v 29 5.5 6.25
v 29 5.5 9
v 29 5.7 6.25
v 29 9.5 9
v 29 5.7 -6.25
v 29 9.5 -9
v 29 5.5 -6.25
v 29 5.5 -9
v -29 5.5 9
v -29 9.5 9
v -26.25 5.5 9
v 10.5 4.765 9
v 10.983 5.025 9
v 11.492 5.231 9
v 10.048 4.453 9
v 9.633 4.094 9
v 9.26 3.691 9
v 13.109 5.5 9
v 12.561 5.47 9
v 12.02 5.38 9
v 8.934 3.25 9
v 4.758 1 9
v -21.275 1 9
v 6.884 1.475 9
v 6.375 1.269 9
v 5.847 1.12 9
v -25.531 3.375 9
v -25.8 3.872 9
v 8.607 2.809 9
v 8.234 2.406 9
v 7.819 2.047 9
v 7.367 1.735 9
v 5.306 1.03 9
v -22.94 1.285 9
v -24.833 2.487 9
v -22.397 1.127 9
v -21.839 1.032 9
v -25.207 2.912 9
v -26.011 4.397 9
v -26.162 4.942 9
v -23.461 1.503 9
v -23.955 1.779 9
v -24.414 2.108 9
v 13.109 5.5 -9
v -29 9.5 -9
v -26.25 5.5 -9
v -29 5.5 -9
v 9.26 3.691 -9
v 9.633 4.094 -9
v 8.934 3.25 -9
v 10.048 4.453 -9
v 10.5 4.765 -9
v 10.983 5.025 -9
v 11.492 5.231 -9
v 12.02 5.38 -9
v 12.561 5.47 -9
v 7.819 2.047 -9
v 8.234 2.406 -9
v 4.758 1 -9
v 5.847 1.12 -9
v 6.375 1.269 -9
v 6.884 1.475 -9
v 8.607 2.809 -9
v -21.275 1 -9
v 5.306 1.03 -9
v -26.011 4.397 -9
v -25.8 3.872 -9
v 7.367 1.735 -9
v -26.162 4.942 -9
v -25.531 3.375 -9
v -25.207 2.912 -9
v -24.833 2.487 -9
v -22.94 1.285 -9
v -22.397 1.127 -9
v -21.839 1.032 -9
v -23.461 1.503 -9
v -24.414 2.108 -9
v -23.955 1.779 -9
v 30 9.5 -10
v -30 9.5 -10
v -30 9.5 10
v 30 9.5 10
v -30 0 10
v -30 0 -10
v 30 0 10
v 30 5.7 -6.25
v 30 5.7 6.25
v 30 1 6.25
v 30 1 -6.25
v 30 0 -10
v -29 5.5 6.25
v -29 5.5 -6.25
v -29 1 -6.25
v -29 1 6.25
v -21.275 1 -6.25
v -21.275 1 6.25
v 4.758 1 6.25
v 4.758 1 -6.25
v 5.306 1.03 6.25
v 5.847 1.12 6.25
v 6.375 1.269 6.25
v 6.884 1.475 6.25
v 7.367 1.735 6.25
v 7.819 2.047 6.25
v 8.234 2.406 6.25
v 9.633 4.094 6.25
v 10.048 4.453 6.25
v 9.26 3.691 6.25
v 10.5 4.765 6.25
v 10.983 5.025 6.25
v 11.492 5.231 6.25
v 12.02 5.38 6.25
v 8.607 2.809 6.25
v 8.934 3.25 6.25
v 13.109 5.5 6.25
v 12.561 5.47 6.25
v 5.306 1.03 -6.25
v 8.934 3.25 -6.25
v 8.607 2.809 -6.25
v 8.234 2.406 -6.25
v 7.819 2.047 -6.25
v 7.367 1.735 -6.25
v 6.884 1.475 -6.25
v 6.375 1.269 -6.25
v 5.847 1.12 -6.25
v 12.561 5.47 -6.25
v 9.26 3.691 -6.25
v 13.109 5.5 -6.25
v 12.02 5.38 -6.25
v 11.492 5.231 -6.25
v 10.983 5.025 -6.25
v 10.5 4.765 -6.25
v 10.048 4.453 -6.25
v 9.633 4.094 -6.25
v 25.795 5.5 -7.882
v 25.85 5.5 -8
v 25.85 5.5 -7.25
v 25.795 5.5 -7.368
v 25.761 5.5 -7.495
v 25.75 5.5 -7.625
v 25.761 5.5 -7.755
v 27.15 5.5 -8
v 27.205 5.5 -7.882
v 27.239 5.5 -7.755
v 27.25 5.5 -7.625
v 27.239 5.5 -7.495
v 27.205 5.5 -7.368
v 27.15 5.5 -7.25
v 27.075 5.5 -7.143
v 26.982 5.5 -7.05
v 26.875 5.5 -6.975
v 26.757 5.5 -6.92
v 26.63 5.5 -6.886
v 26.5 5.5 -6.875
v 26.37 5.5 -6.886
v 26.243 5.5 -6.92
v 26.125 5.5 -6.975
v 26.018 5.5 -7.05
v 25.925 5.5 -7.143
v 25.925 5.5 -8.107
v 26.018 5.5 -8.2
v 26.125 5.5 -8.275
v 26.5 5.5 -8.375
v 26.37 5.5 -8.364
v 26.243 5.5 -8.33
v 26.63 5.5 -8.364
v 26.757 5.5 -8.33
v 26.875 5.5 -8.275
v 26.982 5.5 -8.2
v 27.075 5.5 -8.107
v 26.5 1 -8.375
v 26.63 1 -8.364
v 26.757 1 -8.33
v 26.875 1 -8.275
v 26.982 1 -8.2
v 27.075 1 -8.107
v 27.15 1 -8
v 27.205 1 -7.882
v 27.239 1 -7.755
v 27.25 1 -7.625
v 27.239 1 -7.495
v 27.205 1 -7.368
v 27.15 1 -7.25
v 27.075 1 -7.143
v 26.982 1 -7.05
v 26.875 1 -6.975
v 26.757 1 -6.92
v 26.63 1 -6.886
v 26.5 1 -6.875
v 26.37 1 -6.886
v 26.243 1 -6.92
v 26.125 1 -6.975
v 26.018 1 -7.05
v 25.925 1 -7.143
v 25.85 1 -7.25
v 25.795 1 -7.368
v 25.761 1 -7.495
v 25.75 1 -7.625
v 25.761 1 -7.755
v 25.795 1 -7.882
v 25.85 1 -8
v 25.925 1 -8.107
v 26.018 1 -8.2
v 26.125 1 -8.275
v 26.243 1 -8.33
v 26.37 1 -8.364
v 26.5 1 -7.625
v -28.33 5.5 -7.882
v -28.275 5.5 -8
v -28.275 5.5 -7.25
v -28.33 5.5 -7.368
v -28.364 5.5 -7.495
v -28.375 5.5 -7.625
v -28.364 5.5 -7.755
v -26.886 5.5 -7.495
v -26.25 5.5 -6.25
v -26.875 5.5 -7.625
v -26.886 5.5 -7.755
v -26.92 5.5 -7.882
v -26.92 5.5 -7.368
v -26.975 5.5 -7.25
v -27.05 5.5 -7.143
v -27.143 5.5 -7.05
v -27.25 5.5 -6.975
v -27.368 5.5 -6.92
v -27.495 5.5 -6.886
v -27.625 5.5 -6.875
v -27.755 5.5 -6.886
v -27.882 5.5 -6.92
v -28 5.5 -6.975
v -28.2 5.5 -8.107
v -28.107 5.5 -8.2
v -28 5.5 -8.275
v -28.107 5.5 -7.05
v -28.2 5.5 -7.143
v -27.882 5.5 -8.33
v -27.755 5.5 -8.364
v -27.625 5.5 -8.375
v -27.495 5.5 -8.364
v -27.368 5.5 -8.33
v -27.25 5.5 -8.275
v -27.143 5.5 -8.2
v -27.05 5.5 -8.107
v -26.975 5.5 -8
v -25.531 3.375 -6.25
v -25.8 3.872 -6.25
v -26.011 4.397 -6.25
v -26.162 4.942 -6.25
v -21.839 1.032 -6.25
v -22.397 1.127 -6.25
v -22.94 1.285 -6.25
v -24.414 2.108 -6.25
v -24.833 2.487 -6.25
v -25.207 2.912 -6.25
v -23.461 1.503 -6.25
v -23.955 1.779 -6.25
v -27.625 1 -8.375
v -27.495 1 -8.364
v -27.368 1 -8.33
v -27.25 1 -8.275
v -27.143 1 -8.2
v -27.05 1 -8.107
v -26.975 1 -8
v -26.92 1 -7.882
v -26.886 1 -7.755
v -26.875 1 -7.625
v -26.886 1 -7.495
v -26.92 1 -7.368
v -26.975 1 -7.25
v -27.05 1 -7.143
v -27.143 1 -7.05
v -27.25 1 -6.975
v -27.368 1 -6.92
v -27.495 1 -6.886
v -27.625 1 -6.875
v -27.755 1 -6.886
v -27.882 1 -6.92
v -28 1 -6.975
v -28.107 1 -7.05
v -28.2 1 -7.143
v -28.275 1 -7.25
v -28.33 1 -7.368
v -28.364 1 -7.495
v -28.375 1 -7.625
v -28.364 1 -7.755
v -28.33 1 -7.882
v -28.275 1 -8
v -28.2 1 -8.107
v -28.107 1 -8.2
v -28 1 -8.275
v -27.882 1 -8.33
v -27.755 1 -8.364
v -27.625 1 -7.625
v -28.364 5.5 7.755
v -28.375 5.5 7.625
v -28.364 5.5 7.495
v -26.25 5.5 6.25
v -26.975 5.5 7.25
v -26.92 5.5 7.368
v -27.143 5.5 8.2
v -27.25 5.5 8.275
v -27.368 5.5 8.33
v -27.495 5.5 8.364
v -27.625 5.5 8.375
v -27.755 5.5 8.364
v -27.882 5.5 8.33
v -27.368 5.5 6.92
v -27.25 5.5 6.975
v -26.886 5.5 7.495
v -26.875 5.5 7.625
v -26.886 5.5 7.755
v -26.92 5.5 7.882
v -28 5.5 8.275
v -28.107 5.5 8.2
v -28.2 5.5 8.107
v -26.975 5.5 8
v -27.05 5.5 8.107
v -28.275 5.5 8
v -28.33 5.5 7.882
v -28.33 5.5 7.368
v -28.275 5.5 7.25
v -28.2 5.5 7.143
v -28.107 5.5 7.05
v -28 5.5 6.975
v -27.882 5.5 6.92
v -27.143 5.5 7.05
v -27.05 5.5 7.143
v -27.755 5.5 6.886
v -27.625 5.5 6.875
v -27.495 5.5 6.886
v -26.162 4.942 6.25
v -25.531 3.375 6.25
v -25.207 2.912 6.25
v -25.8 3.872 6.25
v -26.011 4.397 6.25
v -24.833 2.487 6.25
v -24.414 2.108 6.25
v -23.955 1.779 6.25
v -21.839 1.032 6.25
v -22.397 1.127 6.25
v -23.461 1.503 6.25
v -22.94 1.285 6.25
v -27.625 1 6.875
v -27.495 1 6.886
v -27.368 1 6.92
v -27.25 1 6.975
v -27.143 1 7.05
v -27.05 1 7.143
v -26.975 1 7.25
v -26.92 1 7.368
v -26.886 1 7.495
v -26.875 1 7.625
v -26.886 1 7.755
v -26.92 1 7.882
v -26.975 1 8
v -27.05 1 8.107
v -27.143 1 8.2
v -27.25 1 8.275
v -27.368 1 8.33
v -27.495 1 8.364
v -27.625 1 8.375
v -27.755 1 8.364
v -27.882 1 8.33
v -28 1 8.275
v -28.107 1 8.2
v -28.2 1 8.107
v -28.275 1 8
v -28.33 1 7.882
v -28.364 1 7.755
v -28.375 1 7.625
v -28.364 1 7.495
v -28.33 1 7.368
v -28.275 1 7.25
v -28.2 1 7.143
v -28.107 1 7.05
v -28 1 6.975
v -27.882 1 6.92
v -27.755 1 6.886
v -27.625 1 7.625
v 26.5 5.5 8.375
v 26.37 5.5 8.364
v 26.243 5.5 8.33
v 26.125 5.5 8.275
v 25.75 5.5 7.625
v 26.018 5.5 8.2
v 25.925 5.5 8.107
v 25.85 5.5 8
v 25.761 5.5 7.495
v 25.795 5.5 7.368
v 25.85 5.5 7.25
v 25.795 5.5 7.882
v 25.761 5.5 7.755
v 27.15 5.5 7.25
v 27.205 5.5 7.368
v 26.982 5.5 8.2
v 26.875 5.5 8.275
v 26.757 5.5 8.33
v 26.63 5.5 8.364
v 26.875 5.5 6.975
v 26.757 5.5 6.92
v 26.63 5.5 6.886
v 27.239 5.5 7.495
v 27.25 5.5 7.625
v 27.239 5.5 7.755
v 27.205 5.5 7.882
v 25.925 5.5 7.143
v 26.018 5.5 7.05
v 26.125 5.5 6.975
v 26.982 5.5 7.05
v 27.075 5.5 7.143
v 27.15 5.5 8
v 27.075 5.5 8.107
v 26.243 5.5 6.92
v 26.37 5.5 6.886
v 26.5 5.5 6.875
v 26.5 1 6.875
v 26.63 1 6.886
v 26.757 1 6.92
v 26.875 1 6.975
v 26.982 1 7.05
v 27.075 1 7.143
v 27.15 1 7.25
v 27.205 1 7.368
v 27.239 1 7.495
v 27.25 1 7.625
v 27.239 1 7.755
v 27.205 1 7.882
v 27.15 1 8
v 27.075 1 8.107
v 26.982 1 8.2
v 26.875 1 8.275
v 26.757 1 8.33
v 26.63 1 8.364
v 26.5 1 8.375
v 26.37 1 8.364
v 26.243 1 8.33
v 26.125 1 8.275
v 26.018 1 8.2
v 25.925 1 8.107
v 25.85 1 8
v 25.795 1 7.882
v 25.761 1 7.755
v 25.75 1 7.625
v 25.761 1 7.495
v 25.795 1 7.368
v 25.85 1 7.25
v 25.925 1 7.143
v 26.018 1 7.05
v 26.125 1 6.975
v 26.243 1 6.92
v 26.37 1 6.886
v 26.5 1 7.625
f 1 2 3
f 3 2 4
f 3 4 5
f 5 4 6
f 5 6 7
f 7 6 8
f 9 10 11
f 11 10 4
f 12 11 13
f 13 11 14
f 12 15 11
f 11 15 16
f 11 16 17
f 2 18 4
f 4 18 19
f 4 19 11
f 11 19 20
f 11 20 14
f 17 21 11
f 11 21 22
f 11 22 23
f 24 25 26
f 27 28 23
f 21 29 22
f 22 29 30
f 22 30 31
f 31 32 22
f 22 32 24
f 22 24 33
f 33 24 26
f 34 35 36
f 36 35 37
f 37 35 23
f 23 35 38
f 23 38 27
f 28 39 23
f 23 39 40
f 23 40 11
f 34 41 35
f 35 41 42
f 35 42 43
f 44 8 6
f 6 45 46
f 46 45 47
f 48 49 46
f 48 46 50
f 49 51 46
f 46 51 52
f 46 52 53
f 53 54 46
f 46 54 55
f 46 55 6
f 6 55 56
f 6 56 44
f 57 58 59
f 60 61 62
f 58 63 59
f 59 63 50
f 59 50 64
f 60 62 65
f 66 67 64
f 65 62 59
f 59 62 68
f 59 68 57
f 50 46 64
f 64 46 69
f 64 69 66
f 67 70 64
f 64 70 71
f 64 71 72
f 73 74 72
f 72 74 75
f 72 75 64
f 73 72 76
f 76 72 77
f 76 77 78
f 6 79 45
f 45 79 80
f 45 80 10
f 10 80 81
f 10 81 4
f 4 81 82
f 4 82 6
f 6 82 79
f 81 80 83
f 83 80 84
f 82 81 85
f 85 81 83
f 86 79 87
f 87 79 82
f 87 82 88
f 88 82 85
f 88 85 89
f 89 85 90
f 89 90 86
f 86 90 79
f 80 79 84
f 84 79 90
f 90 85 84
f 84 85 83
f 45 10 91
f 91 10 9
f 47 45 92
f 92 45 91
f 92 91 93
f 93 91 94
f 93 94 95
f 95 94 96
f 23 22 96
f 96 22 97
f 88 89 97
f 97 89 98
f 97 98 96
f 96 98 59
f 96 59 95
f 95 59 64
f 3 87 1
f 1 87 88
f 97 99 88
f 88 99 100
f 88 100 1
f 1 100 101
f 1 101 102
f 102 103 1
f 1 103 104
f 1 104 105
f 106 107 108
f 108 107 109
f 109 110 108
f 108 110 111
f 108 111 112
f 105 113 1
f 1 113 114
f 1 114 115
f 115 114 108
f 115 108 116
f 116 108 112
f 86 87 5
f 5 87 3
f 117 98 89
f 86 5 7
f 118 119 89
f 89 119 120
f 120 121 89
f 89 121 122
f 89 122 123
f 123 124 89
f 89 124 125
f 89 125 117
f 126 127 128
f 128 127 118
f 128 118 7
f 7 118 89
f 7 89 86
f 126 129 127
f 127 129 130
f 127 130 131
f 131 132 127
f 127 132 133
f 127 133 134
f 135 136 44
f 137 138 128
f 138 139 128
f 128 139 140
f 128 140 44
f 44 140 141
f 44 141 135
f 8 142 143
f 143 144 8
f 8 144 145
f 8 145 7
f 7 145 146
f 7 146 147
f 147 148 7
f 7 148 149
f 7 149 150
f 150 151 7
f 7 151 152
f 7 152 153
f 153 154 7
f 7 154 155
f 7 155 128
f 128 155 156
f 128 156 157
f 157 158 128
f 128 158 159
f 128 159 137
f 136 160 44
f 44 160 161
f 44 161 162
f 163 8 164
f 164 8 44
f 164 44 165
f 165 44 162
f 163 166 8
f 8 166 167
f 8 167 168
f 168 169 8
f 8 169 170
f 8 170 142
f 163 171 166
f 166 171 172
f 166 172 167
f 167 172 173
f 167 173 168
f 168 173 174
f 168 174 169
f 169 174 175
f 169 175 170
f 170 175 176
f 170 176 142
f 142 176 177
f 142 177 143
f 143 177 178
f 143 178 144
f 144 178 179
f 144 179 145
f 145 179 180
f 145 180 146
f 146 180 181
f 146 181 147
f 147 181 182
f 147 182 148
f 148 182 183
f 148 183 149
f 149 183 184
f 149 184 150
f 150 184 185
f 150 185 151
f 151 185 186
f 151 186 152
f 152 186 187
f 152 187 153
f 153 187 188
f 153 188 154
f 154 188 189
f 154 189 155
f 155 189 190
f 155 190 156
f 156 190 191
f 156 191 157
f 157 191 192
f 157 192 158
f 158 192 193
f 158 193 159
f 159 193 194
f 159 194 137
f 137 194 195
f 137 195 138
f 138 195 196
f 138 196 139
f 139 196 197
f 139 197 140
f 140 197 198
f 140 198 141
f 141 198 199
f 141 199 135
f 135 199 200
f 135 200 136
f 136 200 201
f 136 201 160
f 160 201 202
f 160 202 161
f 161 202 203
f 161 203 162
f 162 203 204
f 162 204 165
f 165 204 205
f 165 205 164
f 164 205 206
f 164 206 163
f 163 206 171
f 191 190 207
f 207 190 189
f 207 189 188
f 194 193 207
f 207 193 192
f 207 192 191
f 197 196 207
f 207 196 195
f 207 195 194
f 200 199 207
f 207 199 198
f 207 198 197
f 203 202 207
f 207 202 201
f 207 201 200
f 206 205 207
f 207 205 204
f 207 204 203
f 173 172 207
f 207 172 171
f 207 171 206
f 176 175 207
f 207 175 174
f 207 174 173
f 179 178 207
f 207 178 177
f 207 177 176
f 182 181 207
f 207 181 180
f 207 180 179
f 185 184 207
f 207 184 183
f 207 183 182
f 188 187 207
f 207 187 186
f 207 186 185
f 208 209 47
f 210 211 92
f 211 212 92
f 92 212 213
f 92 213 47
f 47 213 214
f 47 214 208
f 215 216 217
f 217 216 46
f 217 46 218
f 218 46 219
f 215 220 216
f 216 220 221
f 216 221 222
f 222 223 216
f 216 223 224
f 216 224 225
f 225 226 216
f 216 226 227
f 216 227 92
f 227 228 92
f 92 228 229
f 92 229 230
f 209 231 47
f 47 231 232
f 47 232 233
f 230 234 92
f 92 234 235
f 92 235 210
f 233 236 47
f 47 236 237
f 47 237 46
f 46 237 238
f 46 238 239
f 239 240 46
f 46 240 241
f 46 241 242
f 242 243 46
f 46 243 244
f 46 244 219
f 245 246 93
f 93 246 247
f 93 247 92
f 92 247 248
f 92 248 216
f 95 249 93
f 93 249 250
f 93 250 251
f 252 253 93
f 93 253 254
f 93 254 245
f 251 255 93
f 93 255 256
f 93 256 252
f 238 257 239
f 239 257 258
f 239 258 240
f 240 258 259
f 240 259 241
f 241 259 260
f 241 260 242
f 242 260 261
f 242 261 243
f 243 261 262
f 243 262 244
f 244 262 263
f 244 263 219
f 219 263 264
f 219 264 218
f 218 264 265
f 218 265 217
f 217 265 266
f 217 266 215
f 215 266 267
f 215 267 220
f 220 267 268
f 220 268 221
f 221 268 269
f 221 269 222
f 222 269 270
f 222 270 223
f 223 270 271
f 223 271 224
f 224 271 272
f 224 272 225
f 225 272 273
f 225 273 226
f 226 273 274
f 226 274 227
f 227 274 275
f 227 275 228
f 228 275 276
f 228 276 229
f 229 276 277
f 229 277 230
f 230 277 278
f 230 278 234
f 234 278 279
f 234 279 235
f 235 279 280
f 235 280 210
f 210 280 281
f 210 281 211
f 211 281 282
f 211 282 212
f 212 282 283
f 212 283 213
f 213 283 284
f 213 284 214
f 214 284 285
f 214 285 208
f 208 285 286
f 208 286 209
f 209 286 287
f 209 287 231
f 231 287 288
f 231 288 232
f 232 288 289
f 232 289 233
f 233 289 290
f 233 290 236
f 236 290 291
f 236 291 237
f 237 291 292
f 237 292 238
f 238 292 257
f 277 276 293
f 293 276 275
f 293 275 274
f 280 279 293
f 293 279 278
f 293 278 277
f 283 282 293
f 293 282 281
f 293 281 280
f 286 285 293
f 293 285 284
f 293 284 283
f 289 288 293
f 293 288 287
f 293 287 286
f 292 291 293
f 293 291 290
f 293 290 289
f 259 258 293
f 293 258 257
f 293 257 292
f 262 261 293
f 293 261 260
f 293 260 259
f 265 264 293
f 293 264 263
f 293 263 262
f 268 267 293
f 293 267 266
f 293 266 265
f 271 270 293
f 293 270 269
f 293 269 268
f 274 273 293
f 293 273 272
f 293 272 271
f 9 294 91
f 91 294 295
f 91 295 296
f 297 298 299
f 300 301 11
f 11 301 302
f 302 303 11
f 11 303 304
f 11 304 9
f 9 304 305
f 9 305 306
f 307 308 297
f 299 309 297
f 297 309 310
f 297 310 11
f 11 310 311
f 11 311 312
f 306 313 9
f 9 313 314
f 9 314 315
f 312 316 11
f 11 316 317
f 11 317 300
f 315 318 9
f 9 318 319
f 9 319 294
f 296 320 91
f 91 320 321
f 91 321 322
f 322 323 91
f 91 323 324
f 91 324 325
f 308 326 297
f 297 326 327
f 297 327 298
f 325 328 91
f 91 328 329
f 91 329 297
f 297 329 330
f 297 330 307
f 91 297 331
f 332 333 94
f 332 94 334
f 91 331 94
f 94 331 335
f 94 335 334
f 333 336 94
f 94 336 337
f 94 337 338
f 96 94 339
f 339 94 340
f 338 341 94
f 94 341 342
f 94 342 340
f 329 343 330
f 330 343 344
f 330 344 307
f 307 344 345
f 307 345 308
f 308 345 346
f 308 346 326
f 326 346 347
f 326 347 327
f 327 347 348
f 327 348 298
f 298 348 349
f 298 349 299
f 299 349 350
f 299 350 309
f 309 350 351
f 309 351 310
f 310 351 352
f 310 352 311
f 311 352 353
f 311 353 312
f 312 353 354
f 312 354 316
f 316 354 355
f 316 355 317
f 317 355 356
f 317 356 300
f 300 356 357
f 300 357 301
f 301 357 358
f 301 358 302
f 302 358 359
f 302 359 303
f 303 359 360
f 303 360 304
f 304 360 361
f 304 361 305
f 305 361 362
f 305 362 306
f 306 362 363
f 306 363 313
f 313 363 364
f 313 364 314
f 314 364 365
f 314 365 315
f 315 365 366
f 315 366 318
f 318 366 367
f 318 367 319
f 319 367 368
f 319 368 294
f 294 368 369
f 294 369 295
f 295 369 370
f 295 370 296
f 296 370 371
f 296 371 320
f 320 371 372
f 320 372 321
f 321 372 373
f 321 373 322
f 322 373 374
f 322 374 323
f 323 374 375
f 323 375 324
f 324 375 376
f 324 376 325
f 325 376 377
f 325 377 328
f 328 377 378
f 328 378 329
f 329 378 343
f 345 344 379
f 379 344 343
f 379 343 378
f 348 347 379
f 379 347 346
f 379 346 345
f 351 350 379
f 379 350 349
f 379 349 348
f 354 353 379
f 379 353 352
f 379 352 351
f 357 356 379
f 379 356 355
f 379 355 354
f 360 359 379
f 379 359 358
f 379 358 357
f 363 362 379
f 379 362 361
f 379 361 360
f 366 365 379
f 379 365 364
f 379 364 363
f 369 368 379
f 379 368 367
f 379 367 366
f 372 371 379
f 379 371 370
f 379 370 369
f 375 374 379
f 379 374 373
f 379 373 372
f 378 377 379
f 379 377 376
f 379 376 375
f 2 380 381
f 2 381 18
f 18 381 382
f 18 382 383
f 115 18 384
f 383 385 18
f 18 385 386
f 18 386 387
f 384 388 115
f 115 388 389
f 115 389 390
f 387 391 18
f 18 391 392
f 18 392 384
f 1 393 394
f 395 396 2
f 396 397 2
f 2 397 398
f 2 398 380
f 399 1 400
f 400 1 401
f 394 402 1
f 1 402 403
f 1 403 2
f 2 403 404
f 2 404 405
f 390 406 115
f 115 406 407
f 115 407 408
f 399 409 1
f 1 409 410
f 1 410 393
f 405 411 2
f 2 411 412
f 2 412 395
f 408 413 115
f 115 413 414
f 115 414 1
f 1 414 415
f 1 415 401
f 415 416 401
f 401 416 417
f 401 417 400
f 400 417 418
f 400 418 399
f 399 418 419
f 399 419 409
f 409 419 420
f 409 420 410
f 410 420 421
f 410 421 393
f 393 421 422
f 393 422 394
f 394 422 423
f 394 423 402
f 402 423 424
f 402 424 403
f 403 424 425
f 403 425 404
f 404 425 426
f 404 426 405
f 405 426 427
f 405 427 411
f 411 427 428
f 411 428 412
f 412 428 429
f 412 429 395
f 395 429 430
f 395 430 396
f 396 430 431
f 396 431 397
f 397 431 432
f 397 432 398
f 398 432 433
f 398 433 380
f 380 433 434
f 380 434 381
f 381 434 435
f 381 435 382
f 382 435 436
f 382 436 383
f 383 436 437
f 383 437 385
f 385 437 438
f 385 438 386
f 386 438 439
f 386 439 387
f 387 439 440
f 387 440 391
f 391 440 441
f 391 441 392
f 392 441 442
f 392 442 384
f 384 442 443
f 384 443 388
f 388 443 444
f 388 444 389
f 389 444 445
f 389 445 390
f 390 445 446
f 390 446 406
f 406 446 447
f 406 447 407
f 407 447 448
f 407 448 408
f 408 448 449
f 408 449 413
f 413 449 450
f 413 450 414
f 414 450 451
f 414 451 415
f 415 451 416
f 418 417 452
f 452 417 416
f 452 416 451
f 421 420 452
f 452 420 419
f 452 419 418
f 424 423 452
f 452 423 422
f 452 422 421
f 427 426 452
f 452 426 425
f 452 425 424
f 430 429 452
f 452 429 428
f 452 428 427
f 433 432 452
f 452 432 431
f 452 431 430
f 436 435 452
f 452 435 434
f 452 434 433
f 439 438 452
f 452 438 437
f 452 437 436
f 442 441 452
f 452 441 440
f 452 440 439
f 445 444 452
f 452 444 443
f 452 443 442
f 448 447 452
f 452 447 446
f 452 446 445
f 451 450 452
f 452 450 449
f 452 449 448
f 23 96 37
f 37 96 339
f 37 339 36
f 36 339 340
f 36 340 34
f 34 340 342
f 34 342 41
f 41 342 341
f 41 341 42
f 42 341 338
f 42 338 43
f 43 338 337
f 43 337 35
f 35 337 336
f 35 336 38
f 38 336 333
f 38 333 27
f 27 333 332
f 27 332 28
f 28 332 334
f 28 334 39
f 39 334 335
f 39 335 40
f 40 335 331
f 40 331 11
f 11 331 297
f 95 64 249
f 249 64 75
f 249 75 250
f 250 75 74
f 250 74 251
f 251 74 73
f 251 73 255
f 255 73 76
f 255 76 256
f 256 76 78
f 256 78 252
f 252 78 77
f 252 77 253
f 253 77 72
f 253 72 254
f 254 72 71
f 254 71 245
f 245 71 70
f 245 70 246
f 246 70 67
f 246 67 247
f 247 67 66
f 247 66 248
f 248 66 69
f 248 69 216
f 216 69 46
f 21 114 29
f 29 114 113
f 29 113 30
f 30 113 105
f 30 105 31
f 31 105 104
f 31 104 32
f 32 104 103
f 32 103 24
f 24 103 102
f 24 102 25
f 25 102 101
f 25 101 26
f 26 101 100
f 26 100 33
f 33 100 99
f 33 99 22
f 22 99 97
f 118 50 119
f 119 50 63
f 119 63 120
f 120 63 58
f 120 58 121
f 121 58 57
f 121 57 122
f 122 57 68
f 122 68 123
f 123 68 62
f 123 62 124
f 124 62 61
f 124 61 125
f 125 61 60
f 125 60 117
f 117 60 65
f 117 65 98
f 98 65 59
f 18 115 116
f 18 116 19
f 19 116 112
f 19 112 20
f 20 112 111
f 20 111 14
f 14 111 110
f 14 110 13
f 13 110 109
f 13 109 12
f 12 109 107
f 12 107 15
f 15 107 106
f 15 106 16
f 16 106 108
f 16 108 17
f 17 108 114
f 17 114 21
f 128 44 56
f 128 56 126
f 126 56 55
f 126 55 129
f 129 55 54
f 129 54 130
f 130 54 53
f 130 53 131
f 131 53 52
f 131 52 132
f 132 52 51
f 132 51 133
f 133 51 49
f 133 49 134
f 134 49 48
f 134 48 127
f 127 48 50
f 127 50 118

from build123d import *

# Parameters (mm, degrees)
SKETCH1_W           = 60
SKETCH1_H           = 20
BOSS_EXTRUDE1_DEPTH = 9.5
SHELL1_T            = -1
SKETCH2_W           = 12.5
SKETCH2_H           = 4.7
CUT_EXTRUDE1_DEPTH  = 12
SKETCH3_W           = 19.267308131
SKETCH3_H           = 2.75
SKETCH3_R           = 0.75
SKETCH3_W_2         = 2.75
BOSS_EXTRUDE2_DEPTH = 4.5
FILLET1_R           = 5
FILLET2_R           = 5


with BuildPart() as part:
    # Sketch1 → Boss-Extrude1 (new body)
    with BuildSketch(Plane(origin=(0, 0, 0), x_dir=(1, 0, 0), z_dir=(0, 1, 0))):
        Rectangle(SKETCH1_W, SKETCH1_H)
    extrude(amount=BOSS_EXTRUDE1_DEPTH)

    # Shell1
    shell1_openings = [part.faces().sort_by_distance(p)[0] for p in [
        (0, 9.5, 0),
    ]]
    offset(amount=SHELL1_T, openings=shell1_openings, kind=Kind.INTERSECTION)

    # Sketch2 → Cut-Extrude1 (cut)
    with BuildSketch(Plane(origin=(30, 0, 0), x_dir=(0, 0, -1), z_dir=(1, 0, 0))):
        with Locations((0, 3.35)):
            Rectangle(SKETCH2_W, SKETCH2_H)
    extrude(amount=-CUT_EXTRUDE1_DEPTH, mode=Mode.SUBTRACT)

    # Sketch3 → Boss-Extrude2 (add)
    # profile 1 of 4: a face of its own
    with BuildSketch(Plane(origin=(0, 1, 0), x_dir=(1, 0, 0), z_dir=(0, 1, 0))):
        with Locations((19.366345935, 7.625)):
            Rectangle(SKETCH3_W, SKETCH3_H)
        with Locations(Location((26.5, 7.625, 0), (0, 0, 270))):
            Circle(SKETCH3_R, mode=Mode.SUBTRACT)
    # profile 2 of 4: a face of its own
    with BuildSketch(Plane(origin=(0, 1, 0), x_dir=(1, 0, 0), z_dir=(0, 1, 0))):
        with Locations((-27.625, 7.625)):
            Rectangle(SKETCH3_W_2, SKETCH3_H)
        with Locations(Location((-27.625, 7.625, 0), (0, 0, 270))):
            Circle(SKETCH3_R, mode=Mode.SUBTRACT)
    # profile 3 of 4: a face of its own
    with BuildSketch(Plane(origin=(0, 1, 0), x_dir=(1, 0, 0), z_dir=(0, 1, 0))):
        with Locations((-27.625, -7.625)):
            Rectangle(SKETCH3_W_2, SKETCH3_H)
        with Locations(Location((-27.625, -7.625, 0), (0, 0, 90))):
            Circle(SKETCH3_R, mode=Mode.SUBTRACT)
    # profile 4 of 4: a face of its own
    with BuildSketch(Plane(origin=(0, 1, 0), x_dir=(1, 0, 0), z_dir=(0, 1, 0))):
        with Locations((19.366345935, -7.625)):
            Rectangle(SKETCH3_W, SKETCH3_H)
        with Locations(Location((26.5, -7.625, 0), (0, 0, 90))):
            Circle(SKETCH3_R, mode=Mode.SUBTRACT)
    extrude(amount=BOSS_EXTRUDE2_DEPTH)

    # Fillet1
    # the kernel refuses this fillet: 5 mm, written as the material it adds along each edge
    with BuildSketch(Plane(origin=(-26.25, 1, 9), x_dir=(1, 0, 0), z_dir=(0, 0, -1))) as fillet1_piece_1:
        with BuildLine():
            CenterArc((4.974937186, -5), FILLET1_R, 90, 84.260829523)
            Line((0, -4.5), (-0.099498744, -4.49))
            ThreePointArc((-0.099498744, -4.49), (-0.1, -2.25), (-0.1, 0))
            Line((-0.1, 0), (0, 0.1))
            Line((0, 0.1), (4.974937186, 0.1))
            Line((4.974937186, 0.1), (4.974937186, 0))
        make_face()
    extrude(amount=2.75)
    with BuildSketch(Plane(origin=(-26.25, 1, -9), x_dir=(1, 0, 0), z_dir=(0, 0, 1)), Plane(origin=(9.732691869, 1, 9), x_dir=(-1, 0, 0), z_dir=(0, 0, -1))) as fillet1_piece_2:
        with BuildLine():
            CenterArc((4.974937186, 5), FILLET1_R, 185.739170477, 84.260829523)
            Line((0, 4.5), (-0.099498744, 4.49))
            ThreePointArc((-0.099498744, 4.49), (-0.1, 2.25), (-0.1, 0))
            Line((-0.1, 0), (0, -0.1))
            Line((0, -0.1), (4.974937186, -0.1))
            Line((4.974937186, -0.1), (4.974937186, 0))
        make_face()
    extrude(amount=2.75)
    with BuildSketch(Plane(origin=(9.732691869, 1, -9), x_dir=(0, 1, 0), z_dir=(0, 0, 1))) as fillet1_piece_3:
        with BuildLine():
            CenterArc((5, 4.974937186), FILLET1_R, 180, 84.260829523)
            Line((0, 4.974937186), (-0.1, 4.974937186))
            Line((-0.1, 4.974937186), (-0.1, 0))
            Line((-0.1, 0), (0, -0.1))
            ThreePointArc((0, -0.1), (2.25, -0.1), (4.49, -0.099498744))
            Line((4.49, -0.099498744), (4.5, 0))
        make_face()
    extrude(amount=2.75)

    # Fillet2
    fillet2_edges = [part.edges().sort_by_distance(p)[0] for p in [
        (9.732691869, 5.5, -7.625),
        (9.732691869, 5.5, 7.625),
    ]]
    fillet(fillet2_edges, radius=FILLET2_R)


solid = part.part
